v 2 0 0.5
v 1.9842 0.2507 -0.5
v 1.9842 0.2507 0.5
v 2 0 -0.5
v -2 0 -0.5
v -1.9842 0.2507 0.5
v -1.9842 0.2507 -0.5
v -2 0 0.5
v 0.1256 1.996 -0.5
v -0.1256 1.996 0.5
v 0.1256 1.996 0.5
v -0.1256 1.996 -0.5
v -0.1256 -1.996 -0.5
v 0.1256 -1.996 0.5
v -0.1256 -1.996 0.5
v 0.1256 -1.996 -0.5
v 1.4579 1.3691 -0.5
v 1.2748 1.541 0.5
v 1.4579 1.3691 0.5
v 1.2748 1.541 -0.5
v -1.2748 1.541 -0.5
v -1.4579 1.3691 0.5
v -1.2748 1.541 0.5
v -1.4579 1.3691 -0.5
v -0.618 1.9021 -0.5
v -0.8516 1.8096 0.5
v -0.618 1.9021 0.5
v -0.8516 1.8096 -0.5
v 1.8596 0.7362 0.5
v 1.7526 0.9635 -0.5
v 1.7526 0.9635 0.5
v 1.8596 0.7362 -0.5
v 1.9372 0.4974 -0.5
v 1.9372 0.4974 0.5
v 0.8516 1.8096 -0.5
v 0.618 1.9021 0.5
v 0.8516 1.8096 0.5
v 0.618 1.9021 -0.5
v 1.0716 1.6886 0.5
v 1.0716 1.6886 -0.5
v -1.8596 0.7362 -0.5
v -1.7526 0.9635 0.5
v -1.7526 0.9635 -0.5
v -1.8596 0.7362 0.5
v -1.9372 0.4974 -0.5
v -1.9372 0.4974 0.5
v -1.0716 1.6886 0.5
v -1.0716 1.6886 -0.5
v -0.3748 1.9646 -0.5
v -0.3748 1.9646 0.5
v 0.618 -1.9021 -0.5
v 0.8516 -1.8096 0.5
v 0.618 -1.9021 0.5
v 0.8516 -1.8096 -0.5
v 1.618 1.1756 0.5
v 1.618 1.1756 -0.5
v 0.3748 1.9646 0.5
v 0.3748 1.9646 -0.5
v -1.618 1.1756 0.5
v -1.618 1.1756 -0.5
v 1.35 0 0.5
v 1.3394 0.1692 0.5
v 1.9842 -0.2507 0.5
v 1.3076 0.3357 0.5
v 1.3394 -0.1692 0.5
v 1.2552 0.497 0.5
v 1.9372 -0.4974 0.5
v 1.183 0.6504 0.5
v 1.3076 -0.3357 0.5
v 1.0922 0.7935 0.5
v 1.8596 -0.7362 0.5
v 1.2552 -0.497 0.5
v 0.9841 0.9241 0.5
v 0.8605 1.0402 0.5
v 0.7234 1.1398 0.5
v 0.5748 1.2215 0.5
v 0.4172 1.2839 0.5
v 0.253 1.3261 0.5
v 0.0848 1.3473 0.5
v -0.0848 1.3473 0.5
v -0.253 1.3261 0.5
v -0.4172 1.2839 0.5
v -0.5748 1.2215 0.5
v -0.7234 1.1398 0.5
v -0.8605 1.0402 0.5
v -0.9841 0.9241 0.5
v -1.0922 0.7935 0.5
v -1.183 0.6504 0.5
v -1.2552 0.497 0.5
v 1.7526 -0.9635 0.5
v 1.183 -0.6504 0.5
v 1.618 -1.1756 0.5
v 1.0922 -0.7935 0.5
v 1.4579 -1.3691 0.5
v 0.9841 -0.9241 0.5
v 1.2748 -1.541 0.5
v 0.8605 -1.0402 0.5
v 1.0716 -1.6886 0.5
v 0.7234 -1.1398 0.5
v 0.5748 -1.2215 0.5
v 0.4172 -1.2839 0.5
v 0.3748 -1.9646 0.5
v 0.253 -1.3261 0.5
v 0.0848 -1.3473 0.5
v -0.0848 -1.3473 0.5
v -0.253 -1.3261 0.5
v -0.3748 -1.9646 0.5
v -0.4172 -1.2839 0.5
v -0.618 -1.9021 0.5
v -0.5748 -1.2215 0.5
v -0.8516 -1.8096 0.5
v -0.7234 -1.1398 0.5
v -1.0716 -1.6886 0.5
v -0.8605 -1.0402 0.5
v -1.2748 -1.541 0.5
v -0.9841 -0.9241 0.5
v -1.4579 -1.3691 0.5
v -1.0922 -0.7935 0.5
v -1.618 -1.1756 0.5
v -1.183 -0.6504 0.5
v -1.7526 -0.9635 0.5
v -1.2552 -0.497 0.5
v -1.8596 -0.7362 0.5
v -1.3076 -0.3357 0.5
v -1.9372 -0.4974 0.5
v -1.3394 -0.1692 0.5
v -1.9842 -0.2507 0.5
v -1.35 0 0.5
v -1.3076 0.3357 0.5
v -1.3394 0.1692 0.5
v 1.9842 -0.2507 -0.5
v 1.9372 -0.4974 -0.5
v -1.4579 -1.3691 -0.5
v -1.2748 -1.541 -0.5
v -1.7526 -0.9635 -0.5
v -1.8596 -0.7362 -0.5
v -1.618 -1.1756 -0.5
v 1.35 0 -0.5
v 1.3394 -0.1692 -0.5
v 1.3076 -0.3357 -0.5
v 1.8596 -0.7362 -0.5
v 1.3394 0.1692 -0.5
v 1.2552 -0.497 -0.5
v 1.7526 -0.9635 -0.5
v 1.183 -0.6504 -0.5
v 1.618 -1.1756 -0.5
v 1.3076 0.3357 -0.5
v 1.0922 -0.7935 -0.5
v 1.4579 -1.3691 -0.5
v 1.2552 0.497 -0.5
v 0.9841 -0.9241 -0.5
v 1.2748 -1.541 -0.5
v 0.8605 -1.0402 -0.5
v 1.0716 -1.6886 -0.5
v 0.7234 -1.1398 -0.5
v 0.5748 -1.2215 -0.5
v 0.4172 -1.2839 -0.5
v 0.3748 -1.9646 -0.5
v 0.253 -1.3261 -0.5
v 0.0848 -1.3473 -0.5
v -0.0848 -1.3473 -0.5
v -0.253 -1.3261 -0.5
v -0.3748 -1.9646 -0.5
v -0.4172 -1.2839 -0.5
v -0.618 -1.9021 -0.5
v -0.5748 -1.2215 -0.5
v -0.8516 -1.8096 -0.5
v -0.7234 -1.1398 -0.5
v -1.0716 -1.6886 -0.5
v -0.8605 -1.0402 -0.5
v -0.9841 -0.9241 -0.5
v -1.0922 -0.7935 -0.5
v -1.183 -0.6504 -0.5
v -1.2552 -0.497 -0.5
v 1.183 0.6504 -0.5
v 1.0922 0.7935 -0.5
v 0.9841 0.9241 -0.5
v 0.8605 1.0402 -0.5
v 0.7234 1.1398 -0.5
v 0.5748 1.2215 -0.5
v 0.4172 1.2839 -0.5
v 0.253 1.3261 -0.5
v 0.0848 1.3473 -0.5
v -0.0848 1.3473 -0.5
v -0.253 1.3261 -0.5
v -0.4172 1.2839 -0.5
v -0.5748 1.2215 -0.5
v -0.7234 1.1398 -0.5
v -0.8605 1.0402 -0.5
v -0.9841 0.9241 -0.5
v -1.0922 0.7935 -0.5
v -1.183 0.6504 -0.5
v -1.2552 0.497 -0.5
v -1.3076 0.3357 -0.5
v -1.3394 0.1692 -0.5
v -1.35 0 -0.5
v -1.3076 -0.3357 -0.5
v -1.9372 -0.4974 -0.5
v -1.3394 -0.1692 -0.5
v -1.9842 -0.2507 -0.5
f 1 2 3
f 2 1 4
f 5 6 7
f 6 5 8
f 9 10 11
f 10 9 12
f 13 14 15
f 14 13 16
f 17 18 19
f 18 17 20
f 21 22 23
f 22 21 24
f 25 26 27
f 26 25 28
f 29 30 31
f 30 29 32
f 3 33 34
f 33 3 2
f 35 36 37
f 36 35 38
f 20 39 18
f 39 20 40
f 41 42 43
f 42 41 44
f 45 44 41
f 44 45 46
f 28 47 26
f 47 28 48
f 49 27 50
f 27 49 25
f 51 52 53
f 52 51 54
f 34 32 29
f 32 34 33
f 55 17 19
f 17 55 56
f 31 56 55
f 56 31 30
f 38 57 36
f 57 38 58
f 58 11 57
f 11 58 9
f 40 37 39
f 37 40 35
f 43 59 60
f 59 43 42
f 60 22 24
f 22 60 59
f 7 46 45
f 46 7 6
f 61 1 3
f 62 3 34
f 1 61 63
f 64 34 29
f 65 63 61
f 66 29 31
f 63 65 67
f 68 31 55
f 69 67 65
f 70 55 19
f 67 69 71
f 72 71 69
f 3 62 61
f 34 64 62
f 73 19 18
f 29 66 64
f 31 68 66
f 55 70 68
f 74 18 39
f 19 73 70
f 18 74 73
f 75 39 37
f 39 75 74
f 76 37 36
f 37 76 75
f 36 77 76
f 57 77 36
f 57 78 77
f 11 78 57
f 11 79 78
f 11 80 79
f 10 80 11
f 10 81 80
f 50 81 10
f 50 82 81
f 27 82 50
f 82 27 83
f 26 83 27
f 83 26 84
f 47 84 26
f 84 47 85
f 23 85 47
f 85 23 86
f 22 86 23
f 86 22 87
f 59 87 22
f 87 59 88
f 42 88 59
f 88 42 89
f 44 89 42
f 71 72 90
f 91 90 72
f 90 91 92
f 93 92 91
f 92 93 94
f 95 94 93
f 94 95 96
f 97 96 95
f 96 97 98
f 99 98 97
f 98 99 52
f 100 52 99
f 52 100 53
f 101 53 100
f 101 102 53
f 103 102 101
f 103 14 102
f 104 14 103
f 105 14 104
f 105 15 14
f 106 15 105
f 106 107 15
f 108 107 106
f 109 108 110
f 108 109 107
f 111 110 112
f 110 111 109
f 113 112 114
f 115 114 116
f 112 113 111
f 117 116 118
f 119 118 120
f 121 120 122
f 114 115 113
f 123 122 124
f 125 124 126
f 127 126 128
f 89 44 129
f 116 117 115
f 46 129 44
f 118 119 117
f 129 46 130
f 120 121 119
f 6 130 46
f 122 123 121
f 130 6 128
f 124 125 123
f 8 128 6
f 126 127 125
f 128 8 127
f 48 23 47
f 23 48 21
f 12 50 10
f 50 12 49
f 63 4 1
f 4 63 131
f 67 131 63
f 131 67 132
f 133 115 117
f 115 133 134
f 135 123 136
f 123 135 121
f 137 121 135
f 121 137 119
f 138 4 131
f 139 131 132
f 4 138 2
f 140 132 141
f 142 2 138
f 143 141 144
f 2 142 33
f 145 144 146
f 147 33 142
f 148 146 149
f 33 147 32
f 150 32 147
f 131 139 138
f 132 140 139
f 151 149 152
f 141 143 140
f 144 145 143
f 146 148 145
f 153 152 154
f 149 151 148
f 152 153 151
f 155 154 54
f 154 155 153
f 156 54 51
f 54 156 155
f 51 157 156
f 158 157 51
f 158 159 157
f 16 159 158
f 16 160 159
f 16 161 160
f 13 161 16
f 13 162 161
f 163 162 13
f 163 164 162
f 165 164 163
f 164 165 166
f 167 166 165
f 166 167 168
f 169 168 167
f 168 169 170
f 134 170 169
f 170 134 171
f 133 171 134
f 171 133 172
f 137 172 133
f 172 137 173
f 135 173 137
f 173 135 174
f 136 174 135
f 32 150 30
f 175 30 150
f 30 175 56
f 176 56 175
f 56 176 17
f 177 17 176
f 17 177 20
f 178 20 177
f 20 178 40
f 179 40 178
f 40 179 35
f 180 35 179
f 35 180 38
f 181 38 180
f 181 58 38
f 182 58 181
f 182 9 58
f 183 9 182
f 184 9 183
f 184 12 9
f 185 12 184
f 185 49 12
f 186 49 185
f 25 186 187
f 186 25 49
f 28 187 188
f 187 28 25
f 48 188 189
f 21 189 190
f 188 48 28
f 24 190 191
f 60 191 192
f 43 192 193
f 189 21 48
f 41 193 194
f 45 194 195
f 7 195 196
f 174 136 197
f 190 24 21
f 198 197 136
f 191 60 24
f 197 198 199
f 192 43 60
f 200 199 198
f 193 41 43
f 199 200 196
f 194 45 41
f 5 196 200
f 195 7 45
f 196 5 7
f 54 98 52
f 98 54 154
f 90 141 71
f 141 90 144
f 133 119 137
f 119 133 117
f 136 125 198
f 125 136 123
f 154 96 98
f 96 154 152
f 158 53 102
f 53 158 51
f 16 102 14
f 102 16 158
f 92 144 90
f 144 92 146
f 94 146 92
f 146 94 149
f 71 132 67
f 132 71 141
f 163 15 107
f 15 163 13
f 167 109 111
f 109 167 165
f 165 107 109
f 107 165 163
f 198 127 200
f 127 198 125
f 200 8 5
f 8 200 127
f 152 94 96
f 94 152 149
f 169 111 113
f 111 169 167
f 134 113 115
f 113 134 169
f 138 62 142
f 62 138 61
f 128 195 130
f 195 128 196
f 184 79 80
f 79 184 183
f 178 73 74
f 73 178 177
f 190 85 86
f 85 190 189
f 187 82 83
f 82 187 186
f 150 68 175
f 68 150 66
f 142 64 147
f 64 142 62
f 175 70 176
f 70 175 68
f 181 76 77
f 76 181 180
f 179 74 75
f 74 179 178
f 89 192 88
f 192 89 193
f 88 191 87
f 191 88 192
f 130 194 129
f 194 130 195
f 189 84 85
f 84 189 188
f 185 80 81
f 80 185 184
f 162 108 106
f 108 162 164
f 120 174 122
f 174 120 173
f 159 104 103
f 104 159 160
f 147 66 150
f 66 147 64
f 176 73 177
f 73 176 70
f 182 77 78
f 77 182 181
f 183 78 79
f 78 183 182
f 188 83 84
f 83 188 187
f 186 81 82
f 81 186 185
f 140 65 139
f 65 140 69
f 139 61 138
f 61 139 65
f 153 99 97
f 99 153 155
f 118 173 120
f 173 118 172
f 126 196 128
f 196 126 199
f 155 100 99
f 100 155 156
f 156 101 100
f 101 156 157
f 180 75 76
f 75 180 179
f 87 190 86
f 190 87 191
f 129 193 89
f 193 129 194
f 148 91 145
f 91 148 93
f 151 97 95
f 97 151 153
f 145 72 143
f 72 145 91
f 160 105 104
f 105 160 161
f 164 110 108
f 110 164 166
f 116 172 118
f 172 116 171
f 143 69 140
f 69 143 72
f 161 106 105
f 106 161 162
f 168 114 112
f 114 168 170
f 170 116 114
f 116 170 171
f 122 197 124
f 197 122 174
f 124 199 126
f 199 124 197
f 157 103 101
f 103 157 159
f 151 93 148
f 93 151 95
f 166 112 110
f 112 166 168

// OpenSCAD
$fn = 50;


difference() {
	union() {
		translate(v = [0, 0, -0.5000000000]) {
			cylinder(h = 1, r = 2.0000000000);
		}
	}
	union() {
		translate(v = [0, 0, -100.0000000000]) {
			cylinder(h = 200, r = 1.3500000000);
		}
	}
}
